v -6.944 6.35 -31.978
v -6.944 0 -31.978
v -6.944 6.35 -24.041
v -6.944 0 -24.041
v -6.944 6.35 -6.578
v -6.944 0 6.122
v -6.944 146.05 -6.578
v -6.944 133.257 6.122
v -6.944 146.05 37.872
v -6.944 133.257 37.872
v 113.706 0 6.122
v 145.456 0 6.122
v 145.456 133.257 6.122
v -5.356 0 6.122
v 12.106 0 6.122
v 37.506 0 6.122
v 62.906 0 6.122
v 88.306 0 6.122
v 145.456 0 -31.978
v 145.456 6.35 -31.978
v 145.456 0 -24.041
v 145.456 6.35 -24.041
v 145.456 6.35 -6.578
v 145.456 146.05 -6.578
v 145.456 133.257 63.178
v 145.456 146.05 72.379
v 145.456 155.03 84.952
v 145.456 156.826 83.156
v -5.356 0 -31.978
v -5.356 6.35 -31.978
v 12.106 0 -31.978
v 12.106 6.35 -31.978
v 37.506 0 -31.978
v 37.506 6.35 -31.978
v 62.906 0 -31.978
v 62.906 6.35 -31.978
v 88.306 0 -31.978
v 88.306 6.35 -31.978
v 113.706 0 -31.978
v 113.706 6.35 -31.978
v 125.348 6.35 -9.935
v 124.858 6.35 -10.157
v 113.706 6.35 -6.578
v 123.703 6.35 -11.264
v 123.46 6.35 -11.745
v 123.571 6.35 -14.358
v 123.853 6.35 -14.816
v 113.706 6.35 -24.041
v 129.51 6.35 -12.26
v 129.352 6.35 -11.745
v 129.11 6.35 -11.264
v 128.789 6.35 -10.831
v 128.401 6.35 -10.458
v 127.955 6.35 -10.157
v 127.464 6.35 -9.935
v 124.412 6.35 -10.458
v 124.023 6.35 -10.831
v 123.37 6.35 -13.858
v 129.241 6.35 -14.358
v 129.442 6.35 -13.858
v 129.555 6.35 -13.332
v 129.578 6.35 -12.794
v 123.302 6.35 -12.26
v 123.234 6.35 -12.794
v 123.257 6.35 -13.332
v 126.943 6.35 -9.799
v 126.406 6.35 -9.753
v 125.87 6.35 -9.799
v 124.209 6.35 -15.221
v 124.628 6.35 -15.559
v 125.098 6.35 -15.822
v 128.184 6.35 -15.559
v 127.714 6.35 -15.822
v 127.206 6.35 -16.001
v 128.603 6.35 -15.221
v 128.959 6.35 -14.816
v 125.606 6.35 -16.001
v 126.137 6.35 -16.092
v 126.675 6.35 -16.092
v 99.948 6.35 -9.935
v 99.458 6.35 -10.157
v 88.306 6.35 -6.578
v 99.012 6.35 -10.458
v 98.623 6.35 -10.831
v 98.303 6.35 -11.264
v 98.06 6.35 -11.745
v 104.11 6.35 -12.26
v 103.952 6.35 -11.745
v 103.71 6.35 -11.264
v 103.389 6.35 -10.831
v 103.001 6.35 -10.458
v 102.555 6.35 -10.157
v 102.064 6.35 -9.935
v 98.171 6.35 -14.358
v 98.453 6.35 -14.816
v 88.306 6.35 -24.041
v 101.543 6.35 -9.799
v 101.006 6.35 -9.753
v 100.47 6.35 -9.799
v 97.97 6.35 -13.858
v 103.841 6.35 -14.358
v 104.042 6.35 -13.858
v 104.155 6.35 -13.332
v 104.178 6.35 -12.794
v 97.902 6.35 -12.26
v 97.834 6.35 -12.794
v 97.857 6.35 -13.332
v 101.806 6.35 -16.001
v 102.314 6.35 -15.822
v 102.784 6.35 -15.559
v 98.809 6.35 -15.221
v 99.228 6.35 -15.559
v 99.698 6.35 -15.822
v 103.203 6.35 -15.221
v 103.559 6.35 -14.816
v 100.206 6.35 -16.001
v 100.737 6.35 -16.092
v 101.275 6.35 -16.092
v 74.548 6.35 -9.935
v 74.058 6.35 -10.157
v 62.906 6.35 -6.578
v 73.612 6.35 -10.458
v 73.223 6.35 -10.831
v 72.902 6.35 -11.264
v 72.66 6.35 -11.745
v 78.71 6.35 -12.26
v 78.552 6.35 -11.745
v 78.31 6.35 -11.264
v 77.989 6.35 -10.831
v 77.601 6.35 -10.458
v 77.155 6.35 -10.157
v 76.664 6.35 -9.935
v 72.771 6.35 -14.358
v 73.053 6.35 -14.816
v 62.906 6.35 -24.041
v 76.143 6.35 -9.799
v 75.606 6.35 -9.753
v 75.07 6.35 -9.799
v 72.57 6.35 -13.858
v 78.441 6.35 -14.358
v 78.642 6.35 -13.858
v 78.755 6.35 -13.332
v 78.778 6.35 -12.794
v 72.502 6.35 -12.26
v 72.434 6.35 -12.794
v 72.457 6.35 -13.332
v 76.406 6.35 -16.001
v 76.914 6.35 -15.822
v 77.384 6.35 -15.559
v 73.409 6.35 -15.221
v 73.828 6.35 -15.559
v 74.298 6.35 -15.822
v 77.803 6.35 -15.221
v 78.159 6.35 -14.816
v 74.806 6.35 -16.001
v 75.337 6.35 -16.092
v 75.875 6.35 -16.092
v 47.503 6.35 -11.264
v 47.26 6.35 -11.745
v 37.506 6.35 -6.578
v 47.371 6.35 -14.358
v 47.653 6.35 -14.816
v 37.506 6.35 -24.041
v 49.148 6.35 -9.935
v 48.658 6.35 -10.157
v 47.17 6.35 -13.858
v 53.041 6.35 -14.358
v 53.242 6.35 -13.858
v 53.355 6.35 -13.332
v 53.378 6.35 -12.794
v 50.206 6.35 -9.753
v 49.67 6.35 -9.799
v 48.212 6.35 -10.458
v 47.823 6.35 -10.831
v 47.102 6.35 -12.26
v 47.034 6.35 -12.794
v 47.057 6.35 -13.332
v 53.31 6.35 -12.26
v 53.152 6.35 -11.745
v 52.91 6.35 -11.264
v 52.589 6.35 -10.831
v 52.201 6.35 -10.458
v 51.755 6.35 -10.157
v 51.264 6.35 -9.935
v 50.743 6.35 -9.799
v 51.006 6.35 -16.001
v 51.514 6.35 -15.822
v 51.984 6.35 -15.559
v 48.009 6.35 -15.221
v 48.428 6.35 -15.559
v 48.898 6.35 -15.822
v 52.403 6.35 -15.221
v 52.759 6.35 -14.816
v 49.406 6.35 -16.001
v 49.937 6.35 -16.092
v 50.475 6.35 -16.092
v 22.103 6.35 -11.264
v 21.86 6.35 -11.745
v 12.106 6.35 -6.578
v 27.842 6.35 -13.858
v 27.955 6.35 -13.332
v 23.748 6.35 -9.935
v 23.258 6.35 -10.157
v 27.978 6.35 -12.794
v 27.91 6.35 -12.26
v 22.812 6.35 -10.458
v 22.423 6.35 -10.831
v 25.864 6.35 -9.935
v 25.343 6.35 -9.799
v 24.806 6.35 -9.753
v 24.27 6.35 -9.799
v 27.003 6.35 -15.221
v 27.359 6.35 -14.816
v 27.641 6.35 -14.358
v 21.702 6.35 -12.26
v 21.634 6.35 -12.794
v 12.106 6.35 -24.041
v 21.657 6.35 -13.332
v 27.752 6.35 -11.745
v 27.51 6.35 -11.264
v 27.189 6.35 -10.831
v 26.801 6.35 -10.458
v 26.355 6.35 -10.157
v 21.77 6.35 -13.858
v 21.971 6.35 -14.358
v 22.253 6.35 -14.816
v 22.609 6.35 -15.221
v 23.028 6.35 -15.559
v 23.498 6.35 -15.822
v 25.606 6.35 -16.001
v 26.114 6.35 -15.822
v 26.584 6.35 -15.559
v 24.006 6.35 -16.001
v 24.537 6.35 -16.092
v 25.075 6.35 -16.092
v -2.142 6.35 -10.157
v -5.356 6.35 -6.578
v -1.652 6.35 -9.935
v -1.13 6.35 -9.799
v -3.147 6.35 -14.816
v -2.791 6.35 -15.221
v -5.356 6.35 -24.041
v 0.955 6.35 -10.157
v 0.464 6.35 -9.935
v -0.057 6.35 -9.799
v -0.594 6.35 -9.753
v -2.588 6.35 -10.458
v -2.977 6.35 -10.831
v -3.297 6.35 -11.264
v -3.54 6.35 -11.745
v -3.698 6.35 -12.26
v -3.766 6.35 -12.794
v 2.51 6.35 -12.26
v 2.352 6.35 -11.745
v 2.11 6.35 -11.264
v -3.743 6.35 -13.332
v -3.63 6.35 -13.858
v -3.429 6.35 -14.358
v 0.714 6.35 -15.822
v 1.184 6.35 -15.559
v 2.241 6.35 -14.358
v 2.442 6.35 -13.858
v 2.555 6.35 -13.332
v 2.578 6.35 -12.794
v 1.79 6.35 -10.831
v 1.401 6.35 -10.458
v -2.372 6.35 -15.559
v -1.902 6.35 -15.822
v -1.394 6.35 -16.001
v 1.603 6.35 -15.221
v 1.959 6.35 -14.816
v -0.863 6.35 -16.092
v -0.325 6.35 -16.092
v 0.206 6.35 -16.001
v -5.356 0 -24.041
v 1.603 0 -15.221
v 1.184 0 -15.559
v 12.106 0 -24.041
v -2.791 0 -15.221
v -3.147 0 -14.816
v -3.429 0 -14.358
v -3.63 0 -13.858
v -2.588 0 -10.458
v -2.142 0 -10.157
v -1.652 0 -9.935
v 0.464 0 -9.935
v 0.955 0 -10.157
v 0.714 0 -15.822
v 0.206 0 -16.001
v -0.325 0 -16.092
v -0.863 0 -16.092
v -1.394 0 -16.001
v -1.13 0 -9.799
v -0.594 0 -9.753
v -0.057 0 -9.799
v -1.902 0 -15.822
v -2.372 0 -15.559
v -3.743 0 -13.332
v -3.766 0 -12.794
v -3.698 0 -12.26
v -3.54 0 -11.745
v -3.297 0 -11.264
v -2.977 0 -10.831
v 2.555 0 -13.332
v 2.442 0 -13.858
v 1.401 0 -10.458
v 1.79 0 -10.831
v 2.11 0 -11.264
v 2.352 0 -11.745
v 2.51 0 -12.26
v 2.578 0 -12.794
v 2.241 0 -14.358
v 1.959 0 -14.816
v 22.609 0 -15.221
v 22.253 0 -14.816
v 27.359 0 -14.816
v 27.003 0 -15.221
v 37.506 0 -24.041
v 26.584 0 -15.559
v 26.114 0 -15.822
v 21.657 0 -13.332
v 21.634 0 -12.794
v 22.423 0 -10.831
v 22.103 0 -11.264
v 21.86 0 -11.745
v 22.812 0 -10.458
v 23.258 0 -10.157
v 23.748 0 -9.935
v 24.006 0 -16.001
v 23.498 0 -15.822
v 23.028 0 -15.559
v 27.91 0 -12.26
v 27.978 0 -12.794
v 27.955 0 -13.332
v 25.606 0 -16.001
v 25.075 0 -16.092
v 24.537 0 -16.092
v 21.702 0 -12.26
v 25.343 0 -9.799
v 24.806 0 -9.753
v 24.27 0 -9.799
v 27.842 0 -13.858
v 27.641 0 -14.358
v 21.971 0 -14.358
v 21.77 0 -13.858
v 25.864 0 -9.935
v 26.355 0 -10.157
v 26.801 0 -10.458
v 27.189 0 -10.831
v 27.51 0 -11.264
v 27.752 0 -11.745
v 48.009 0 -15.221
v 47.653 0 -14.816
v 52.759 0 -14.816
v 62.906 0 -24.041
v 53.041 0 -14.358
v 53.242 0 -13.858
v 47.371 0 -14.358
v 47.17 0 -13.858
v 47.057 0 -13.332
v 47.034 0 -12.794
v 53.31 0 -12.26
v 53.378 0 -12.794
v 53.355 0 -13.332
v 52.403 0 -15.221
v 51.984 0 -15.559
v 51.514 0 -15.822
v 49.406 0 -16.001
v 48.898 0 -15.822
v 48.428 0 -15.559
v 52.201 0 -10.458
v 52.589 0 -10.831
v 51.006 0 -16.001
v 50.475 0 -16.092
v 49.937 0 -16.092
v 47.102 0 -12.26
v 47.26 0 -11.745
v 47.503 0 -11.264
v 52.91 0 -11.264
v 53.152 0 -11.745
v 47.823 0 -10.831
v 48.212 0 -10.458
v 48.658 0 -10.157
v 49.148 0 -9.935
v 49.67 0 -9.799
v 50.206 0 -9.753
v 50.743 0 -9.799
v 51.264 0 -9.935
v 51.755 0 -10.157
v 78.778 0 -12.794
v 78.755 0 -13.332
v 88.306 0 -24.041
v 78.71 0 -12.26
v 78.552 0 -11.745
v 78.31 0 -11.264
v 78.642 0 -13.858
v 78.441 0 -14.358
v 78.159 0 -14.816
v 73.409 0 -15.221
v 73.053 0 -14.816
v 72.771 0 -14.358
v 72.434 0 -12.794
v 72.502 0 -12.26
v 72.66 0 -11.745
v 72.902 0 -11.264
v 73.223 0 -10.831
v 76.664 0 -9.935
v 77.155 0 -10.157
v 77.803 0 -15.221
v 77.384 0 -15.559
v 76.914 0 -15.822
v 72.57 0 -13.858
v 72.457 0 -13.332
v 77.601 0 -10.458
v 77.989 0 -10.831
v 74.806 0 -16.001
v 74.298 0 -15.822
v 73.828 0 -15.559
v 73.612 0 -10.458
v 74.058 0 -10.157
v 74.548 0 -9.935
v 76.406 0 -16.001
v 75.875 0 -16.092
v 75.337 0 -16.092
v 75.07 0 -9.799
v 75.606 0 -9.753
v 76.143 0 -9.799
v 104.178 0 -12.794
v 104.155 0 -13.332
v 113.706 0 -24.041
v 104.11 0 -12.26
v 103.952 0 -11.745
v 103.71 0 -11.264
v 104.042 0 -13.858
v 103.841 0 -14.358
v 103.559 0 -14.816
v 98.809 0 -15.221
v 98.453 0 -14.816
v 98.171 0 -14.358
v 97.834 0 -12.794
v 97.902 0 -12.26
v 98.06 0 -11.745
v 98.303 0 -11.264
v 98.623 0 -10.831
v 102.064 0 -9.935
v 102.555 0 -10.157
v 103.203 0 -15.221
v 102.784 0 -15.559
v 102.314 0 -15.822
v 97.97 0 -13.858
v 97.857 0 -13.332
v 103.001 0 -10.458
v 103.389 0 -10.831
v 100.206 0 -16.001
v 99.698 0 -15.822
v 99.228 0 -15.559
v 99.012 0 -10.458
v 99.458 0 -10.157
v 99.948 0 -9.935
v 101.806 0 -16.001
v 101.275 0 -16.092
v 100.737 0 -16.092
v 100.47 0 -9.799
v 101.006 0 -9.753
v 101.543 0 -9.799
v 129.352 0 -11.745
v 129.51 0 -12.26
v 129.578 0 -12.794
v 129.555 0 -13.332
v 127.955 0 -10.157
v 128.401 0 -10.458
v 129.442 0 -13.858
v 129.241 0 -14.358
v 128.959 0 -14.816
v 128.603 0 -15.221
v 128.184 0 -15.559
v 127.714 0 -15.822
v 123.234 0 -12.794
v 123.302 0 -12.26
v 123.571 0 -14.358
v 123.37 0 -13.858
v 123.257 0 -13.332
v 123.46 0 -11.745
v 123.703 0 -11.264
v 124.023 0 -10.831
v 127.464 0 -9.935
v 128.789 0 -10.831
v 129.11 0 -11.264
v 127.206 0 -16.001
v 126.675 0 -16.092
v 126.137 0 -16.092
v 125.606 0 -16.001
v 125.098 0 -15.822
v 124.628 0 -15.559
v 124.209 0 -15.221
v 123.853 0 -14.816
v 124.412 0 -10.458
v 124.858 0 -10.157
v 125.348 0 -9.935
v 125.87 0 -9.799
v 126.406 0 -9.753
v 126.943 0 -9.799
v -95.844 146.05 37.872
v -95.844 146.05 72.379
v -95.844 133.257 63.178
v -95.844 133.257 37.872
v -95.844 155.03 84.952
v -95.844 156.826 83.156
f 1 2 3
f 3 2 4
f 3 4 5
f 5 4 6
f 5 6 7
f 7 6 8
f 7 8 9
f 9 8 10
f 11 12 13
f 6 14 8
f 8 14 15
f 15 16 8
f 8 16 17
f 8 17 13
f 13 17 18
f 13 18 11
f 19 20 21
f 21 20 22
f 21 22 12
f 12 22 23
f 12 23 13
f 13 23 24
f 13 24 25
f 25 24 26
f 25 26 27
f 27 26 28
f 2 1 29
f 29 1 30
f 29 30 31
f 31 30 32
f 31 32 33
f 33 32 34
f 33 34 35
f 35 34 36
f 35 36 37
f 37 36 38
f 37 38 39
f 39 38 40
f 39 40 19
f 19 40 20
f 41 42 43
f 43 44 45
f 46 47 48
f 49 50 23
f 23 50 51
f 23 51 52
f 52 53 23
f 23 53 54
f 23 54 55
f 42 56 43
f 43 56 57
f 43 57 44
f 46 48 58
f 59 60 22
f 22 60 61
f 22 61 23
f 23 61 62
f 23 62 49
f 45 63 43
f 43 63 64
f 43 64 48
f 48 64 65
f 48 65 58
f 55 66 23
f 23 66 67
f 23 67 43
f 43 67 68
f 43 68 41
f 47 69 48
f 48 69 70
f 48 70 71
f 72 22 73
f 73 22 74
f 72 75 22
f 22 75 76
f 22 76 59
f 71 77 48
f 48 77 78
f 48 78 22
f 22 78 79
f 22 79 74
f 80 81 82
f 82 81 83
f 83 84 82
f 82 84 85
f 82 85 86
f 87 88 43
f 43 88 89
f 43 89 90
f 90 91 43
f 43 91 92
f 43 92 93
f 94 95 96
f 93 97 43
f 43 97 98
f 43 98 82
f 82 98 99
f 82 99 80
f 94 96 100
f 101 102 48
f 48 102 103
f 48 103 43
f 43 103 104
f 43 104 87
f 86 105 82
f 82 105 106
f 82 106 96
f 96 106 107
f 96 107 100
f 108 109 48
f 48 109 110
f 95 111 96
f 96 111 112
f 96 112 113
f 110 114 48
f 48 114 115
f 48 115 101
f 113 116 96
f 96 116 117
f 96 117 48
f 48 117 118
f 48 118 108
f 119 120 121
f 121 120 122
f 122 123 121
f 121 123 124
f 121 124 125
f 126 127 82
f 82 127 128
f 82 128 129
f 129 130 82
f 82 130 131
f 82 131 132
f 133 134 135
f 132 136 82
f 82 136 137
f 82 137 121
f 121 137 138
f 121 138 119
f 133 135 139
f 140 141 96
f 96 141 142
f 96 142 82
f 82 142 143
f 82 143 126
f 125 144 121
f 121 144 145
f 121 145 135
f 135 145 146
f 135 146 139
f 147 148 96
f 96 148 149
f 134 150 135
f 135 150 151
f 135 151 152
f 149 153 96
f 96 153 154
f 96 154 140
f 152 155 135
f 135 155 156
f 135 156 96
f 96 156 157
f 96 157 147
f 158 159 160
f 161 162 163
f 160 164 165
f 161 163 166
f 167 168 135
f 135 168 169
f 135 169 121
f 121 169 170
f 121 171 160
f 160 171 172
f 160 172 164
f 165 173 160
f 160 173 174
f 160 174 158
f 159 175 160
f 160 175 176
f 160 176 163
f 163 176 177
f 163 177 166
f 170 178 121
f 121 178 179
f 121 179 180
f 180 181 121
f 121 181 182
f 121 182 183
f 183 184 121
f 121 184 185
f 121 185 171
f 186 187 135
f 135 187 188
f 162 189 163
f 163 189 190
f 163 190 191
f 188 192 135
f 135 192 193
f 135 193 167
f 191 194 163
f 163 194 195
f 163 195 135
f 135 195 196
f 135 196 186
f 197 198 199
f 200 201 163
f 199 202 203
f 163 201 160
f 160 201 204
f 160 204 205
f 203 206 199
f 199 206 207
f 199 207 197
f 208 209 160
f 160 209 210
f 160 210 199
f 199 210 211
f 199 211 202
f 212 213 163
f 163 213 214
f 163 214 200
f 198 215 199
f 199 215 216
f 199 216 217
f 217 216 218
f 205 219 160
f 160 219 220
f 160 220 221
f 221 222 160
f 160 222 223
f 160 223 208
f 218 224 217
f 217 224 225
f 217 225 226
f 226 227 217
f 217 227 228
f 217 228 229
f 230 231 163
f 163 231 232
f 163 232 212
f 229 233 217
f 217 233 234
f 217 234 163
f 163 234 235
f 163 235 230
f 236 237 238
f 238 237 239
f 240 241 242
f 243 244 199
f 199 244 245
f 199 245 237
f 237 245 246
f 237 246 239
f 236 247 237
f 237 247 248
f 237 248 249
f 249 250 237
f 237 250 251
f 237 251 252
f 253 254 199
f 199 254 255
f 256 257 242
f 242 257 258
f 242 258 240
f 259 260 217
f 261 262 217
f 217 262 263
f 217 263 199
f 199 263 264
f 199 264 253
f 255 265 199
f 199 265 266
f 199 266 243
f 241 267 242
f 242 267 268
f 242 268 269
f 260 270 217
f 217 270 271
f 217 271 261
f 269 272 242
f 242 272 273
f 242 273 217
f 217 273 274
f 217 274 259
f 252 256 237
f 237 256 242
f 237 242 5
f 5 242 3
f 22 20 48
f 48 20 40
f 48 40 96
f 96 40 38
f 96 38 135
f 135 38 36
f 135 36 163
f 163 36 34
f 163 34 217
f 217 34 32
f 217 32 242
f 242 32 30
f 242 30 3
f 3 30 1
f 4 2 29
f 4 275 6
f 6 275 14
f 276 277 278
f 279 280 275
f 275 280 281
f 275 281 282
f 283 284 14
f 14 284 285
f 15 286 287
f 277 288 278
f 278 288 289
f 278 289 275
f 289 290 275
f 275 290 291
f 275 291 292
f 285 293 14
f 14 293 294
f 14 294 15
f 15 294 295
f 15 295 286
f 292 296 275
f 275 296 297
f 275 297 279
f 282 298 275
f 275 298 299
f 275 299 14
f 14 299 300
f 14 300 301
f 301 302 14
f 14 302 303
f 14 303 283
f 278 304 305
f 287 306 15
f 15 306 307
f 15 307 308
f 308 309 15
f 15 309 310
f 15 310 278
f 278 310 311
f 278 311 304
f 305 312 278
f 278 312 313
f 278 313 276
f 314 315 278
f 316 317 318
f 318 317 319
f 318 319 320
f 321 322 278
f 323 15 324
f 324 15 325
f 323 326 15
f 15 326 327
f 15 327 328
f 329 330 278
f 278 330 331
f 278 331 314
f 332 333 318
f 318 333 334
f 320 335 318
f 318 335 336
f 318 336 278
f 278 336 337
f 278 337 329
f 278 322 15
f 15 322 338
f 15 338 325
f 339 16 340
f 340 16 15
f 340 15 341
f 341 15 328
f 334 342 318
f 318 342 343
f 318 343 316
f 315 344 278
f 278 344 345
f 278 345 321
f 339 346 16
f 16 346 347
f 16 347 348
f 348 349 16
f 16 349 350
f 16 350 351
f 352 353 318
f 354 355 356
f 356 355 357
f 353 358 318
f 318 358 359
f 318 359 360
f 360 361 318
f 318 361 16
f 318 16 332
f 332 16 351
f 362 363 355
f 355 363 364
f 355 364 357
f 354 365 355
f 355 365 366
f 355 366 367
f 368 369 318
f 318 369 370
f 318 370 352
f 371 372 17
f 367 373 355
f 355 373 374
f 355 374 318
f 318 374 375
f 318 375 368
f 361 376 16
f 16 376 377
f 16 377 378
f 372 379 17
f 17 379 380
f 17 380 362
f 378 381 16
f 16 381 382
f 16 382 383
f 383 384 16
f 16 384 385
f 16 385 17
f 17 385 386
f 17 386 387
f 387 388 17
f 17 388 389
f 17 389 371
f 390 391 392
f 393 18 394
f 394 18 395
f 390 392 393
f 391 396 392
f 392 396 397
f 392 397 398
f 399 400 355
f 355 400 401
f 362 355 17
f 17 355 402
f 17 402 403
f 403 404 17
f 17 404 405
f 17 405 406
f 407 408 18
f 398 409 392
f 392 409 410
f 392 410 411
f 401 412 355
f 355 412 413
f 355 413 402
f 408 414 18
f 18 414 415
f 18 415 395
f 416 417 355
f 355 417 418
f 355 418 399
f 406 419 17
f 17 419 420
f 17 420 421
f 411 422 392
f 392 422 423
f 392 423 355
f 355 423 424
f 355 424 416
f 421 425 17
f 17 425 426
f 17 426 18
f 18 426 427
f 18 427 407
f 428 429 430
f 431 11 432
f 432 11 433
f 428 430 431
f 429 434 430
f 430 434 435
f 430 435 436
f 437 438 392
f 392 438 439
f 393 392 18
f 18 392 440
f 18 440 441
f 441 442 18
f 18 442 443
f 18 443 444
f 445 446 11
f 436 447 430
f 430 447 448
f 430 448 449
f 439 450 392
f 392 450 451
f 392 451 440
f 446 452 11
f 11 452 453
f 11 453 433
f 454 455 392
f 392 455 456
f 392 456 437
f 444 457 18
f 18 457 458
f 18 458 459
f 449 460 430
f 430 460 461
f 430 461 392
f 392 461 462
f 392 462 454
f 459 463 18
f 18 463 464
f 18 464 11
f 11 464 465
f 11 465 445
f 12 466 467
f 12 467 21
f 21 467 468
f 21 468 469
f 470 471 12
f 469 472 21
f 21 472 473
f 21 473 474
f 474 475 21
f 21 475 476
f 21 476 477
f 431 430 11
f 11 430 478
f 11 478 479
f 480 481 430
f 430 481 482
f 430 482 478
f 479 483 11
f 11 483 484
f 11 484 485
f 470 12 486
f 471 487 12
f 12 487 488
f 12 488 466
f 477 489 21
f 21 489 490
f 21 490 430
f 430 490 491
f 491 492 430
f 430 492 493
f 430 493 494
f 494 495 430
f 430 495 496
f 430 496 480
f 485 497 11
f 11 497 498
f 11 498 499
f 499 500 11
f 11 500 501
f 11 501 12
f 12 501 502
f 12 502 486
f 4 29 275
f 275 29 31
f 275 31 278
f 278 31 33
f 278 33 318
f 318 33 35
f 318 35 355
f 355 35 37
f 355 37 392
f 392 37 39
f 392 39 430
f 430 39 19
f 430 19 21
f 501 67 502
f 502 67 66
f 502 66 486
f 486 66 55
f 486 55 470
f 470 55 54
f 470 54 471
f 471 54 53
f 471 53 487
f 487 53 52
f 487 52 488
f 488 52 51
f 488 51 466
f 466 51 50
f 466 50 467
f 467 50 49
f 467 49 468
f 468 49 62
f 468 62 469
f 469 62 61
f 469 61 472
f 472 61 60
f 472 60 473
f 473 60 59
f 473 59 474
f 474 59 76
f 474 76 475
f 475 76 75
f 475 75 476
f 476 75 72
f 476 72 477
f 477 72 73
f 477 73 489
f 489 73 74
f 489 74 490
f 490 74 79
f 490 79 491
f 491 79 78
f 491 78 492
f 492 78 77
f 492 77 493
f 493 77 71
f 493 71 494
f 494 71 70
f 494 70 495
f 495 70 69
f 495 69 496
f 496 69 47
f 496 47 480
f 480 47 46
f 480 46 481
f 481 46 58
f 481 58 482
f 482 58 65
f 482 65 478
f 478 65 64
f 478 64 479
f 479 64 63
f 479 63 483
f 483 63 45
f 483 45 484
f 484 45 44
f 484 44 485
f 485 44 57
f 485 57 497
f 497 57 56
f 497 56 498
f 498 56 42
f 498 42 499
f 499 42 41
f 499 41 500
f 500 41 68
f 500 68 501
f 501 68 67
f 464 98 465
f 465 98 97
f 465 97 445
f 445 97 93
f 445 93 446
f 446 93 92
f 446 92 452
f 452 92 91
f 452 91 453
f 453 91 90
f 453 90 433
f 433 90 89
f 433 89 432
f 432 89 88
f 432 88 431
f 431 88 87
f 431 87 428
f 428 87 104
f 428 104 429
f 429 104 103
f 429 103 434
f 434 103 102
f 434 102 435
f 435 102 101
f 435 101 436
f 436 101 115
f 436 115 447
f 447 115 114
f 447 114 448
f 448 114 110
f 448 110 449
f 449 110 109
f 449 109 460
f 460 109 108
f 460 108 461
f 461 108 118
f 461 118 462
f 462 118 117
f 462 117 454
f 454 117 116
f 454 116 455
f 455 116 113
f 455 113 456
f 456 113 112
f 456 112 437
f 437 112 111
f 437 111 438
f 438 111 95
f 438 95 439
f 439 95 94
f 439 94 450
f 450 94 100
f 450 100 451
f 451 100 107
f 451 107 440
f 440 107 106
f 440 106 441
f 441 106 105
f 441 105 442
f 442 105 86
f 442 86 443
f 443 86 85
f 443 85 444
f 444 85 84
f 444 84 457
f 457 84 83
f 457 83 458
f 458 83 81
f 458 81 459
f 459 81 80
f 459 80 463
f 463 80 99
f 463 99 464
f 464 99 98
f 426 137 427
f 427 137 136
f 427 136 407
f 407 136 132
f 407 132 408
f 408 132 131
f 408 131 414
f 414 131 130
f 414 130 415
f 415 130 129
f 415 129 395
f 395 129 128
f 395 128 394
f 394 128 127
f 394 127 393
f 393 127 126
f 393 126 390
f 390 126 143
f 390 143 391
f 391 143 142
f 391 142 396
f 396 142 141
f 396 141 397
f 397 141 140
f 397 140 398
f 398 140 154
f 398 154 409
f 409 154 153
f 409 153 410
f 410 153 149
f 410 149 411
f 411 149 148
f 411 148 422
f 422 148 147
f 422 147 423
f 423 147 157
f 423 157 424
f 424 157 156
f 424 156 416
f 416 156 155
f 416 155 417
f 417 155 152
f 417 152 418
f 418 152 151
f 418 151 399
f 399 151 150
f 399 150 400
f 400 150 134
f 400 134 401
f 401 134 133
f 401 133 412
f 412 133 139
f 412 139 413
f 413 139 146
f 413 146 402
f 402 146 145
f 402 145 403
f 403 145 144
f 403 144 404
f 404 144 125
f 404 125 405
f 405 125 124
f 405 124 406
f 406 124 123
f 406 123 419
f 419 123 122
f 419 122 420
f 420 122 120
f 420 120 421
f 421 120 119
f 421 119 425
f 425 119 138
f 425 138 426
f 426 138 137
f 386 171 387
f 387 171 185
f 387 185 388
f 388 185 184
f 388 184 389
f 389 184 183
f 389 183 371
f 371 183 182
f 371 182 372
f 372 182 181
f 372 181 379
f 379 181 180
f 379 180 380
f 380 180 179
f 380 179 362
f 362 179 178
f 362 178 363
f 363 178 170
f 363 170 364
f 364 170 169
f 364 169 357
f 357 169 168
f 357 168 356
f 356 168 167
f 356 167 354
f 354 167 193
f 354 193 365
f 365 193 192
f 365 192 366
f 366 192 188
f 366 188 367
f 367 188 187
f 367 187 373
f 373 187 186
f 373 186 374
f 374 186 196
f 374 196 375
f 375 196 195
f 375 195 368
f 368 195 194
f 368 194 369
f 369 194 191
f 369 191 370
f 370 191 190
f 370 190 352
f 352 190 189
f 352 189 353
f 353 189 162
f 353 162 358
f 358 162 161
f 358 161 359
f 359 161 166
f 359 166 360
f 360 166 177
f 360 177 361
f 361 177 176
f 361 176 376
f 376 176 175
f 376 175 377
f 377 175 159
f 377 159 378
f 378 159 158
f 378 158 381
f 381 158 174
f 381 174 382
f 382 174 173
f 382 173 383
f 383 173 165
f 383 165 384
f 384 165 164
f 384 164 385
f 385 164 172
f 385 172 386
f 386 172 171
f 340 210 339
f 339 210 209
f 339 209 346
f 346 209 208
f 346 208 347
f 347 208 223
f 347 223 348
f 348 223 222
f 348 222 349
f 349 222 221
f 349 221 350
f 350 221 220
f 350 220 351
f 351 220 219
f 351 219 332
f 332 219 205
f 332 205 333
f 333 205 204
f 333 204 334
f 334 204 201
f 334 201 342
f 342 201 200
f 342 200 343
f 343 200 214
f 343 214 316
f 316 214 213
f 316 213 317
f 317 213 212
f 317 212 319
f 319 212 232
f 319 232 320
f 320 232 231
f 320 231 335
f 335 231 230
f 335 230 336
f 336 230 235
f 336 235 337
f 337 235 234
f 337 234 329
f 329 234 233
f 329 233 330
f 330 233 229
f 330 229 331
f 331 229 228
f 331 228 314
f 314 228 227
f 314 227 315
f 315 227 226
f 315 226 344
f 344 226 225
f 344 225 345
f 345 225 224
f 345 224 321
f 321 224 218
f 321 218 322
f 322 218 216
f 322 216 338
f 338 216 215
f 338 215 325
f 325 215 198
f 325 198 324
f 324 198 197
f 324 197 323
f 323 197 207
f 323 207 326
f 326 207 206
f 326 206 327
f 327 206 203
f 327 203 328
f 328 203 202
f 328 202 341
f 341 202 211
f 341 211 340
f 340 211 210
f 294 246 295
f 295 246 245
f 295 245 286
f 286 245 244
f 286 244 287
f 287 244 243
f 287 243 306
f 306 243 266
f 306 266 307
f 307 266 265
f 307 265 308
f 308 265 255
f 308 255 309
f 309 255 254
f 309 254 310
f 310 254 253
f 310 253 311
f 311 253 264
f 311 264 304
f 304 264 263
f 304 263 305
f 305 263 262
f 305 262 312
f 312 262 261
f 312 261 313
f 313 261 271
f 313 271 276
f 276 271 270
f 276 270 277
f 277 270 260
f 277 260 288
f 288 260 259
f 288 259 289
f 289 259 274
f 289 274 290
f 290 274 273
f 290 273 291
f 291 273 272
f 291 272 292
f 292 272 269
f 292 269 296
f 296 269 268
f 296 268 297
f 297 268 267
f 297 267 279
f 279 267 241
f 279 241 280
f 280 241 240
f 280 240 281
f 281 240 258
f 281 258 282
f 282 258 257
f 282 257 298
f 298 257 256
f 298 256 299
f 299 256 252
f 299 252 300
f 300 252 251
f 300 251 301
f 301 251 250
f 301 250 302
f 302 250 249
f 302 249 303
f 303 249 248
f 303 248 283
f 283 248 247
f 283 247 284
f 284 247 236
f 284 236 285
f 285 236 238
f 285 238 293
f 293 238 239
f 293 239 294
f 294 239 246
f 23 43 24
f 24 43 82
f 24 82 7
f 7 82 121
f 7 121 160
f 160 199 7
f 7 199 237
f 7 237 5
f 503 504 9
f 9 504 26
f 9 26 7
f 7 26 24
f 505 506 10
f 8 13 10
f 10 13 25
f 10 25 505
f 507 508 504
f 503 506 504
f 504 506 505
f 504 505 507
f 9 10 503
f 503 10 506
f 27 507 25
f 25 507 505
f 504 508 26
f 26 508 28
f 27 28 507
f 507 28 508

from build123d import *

# Parameters (mm, degrees)
SKETCH1_W                = 152.4
SKETCH1_H                = 38.1
BOSS_EXTRUDE1_DEPTH      = 6.35
SKETCH2_R                = 3.175
CUT_EXTRUDE1_DEPTH       = 7.35
SKETCH3_W                = 152.4
SKETCH3_H                = 12.7
BOSS_EXTRUDE2_DEPTH      = 139.7
SKETCH4_W                = 82.55
SKETCH4_H                = 12.793482267
BOSS_EXTRUDE3_DEPTH      = 88.9
BOSS_EXTRUDE3_DEPTH_BACK = 152.4
SKETCH5_W                = 88.9
SKETCH5_H                = 44.45
CUT_EXTRUDE2_DEPTH       = 152.4
CUT_EXTRUDE3_DEPTH       = 242.3
BOSS_EXTRUDE4_DEPTH      = 241.3


with BuildPart() as part:
    # Sketch1 → Boss-Extrude1 (new body)
    with BuildSketch(Plane(origin=(0, 0, 0), x_dir=(1, 0, 0), z_dir=(0, 1, 0))):
        with Locations((69.256115108, 12.928417266)):
            Rectangle(SKETCH1_W, SKETCH1_H)
    extrude(amount=BOSS_EXTRUDE1_DEPTH)

    # Sketch2 → Cut-Extrude1 (cut, through all)
    with BuildSketch(Plane(origin=(0, 6.35, 0), x_dir=(1, 0, 0), z_dir=(0, 1, 0))):
        with Locations((-0.593884892, 12.928417266)):
            Circle(SKETCH2_R)
        with Locations((24.806115108, 12.928417266)):
            Circle(SKETCH2_R)
        with Locations((50.206115108, 12.928417266)):
            Circle(SKETCH2_R)
        with Locations((75.606115108, 12.928417266)):
            Circle(SKETCH2_R)
        with Locations((101.006115108, 12.928417266)):
            Circle(SKETCH2_R)
        with Locations((126.406115108, 12.928417266)):
            Circle(SKETCH2_R)
    extrude(amount=-CUT_EXTRUDE1_DEPTH, mode=Mode.SUBTRACT)

    # Sketch3 → Boss-Extrude2 (add)
    with BuildSketch(Plane(origin=(0, 6.35, 0), x_dir=(1, 0, 0), z_dir=(0, 1, 0))):
        with Locations((69.256115108, 0.228417266)):
            Rectangle(SKETCH3_W, SKETCH3_H)
    extrude(amount=BOSS_EXTRUDE2_DEPTH)

    # Sketch4 → Boss-Extrude3 (add, two sides)
    with BuildSketch(Plane.ZY.offset(6.943884892)) as boss_extrude3_sk:
        with Locations((34.696582734, 139.653258867)):
            Rectangle(SKETCH4_W, SKETCH4_H)
    extrude(amount=BOSS_EXTRUDE3_DEPTH)
    extrude(boss_extrude3_sk.sketch, amount=-BOSS_EXTRUDE3_DEPTH_BACK)

    # Sketch5 → Cut-Extrude2 (cut)
    with BuildSketch(Plane(origin=(0, 146.05, 0), x_dir=(1, 0, 0), z_dir=(0, 1, 0))):
        with Locations((-51.393884892, -15.646582734)):
            Rectangle(SKETCH5_W, SKETCH5_H)
    extrude(amount=-CUT_EXTRUDE2_DEPTH, mode=Mode.SUBTRACT)

    # Sketch6 → Cut-Extrude3 (cut, through all)
    with BuildSketch(Plane.ZY.offset(95.843884892)):
        Polygon((75.971582734, 146.05), (63.178100467, 133.256517733), (75.971582734, 133.256517733), align=None)
    extrude(amount=-CUT_EXTRUDE3_DEPTH, mode=Mode.SUBTRACT)

    # Sketch7 → Boss-Extrude4 (add, through all)
    with BuildSketch(Plane.ZY.offset(95.843884892)):
        Polygon((84.951838855, 155.030256121), (83.155787631, 156.826307345), (65.195275389, 138.865795103), (66.991326613, 137.069743879), align=None)
    extrude(amount=-BOSS_EXTRUDE4_DEPTH)


solid = part.part
